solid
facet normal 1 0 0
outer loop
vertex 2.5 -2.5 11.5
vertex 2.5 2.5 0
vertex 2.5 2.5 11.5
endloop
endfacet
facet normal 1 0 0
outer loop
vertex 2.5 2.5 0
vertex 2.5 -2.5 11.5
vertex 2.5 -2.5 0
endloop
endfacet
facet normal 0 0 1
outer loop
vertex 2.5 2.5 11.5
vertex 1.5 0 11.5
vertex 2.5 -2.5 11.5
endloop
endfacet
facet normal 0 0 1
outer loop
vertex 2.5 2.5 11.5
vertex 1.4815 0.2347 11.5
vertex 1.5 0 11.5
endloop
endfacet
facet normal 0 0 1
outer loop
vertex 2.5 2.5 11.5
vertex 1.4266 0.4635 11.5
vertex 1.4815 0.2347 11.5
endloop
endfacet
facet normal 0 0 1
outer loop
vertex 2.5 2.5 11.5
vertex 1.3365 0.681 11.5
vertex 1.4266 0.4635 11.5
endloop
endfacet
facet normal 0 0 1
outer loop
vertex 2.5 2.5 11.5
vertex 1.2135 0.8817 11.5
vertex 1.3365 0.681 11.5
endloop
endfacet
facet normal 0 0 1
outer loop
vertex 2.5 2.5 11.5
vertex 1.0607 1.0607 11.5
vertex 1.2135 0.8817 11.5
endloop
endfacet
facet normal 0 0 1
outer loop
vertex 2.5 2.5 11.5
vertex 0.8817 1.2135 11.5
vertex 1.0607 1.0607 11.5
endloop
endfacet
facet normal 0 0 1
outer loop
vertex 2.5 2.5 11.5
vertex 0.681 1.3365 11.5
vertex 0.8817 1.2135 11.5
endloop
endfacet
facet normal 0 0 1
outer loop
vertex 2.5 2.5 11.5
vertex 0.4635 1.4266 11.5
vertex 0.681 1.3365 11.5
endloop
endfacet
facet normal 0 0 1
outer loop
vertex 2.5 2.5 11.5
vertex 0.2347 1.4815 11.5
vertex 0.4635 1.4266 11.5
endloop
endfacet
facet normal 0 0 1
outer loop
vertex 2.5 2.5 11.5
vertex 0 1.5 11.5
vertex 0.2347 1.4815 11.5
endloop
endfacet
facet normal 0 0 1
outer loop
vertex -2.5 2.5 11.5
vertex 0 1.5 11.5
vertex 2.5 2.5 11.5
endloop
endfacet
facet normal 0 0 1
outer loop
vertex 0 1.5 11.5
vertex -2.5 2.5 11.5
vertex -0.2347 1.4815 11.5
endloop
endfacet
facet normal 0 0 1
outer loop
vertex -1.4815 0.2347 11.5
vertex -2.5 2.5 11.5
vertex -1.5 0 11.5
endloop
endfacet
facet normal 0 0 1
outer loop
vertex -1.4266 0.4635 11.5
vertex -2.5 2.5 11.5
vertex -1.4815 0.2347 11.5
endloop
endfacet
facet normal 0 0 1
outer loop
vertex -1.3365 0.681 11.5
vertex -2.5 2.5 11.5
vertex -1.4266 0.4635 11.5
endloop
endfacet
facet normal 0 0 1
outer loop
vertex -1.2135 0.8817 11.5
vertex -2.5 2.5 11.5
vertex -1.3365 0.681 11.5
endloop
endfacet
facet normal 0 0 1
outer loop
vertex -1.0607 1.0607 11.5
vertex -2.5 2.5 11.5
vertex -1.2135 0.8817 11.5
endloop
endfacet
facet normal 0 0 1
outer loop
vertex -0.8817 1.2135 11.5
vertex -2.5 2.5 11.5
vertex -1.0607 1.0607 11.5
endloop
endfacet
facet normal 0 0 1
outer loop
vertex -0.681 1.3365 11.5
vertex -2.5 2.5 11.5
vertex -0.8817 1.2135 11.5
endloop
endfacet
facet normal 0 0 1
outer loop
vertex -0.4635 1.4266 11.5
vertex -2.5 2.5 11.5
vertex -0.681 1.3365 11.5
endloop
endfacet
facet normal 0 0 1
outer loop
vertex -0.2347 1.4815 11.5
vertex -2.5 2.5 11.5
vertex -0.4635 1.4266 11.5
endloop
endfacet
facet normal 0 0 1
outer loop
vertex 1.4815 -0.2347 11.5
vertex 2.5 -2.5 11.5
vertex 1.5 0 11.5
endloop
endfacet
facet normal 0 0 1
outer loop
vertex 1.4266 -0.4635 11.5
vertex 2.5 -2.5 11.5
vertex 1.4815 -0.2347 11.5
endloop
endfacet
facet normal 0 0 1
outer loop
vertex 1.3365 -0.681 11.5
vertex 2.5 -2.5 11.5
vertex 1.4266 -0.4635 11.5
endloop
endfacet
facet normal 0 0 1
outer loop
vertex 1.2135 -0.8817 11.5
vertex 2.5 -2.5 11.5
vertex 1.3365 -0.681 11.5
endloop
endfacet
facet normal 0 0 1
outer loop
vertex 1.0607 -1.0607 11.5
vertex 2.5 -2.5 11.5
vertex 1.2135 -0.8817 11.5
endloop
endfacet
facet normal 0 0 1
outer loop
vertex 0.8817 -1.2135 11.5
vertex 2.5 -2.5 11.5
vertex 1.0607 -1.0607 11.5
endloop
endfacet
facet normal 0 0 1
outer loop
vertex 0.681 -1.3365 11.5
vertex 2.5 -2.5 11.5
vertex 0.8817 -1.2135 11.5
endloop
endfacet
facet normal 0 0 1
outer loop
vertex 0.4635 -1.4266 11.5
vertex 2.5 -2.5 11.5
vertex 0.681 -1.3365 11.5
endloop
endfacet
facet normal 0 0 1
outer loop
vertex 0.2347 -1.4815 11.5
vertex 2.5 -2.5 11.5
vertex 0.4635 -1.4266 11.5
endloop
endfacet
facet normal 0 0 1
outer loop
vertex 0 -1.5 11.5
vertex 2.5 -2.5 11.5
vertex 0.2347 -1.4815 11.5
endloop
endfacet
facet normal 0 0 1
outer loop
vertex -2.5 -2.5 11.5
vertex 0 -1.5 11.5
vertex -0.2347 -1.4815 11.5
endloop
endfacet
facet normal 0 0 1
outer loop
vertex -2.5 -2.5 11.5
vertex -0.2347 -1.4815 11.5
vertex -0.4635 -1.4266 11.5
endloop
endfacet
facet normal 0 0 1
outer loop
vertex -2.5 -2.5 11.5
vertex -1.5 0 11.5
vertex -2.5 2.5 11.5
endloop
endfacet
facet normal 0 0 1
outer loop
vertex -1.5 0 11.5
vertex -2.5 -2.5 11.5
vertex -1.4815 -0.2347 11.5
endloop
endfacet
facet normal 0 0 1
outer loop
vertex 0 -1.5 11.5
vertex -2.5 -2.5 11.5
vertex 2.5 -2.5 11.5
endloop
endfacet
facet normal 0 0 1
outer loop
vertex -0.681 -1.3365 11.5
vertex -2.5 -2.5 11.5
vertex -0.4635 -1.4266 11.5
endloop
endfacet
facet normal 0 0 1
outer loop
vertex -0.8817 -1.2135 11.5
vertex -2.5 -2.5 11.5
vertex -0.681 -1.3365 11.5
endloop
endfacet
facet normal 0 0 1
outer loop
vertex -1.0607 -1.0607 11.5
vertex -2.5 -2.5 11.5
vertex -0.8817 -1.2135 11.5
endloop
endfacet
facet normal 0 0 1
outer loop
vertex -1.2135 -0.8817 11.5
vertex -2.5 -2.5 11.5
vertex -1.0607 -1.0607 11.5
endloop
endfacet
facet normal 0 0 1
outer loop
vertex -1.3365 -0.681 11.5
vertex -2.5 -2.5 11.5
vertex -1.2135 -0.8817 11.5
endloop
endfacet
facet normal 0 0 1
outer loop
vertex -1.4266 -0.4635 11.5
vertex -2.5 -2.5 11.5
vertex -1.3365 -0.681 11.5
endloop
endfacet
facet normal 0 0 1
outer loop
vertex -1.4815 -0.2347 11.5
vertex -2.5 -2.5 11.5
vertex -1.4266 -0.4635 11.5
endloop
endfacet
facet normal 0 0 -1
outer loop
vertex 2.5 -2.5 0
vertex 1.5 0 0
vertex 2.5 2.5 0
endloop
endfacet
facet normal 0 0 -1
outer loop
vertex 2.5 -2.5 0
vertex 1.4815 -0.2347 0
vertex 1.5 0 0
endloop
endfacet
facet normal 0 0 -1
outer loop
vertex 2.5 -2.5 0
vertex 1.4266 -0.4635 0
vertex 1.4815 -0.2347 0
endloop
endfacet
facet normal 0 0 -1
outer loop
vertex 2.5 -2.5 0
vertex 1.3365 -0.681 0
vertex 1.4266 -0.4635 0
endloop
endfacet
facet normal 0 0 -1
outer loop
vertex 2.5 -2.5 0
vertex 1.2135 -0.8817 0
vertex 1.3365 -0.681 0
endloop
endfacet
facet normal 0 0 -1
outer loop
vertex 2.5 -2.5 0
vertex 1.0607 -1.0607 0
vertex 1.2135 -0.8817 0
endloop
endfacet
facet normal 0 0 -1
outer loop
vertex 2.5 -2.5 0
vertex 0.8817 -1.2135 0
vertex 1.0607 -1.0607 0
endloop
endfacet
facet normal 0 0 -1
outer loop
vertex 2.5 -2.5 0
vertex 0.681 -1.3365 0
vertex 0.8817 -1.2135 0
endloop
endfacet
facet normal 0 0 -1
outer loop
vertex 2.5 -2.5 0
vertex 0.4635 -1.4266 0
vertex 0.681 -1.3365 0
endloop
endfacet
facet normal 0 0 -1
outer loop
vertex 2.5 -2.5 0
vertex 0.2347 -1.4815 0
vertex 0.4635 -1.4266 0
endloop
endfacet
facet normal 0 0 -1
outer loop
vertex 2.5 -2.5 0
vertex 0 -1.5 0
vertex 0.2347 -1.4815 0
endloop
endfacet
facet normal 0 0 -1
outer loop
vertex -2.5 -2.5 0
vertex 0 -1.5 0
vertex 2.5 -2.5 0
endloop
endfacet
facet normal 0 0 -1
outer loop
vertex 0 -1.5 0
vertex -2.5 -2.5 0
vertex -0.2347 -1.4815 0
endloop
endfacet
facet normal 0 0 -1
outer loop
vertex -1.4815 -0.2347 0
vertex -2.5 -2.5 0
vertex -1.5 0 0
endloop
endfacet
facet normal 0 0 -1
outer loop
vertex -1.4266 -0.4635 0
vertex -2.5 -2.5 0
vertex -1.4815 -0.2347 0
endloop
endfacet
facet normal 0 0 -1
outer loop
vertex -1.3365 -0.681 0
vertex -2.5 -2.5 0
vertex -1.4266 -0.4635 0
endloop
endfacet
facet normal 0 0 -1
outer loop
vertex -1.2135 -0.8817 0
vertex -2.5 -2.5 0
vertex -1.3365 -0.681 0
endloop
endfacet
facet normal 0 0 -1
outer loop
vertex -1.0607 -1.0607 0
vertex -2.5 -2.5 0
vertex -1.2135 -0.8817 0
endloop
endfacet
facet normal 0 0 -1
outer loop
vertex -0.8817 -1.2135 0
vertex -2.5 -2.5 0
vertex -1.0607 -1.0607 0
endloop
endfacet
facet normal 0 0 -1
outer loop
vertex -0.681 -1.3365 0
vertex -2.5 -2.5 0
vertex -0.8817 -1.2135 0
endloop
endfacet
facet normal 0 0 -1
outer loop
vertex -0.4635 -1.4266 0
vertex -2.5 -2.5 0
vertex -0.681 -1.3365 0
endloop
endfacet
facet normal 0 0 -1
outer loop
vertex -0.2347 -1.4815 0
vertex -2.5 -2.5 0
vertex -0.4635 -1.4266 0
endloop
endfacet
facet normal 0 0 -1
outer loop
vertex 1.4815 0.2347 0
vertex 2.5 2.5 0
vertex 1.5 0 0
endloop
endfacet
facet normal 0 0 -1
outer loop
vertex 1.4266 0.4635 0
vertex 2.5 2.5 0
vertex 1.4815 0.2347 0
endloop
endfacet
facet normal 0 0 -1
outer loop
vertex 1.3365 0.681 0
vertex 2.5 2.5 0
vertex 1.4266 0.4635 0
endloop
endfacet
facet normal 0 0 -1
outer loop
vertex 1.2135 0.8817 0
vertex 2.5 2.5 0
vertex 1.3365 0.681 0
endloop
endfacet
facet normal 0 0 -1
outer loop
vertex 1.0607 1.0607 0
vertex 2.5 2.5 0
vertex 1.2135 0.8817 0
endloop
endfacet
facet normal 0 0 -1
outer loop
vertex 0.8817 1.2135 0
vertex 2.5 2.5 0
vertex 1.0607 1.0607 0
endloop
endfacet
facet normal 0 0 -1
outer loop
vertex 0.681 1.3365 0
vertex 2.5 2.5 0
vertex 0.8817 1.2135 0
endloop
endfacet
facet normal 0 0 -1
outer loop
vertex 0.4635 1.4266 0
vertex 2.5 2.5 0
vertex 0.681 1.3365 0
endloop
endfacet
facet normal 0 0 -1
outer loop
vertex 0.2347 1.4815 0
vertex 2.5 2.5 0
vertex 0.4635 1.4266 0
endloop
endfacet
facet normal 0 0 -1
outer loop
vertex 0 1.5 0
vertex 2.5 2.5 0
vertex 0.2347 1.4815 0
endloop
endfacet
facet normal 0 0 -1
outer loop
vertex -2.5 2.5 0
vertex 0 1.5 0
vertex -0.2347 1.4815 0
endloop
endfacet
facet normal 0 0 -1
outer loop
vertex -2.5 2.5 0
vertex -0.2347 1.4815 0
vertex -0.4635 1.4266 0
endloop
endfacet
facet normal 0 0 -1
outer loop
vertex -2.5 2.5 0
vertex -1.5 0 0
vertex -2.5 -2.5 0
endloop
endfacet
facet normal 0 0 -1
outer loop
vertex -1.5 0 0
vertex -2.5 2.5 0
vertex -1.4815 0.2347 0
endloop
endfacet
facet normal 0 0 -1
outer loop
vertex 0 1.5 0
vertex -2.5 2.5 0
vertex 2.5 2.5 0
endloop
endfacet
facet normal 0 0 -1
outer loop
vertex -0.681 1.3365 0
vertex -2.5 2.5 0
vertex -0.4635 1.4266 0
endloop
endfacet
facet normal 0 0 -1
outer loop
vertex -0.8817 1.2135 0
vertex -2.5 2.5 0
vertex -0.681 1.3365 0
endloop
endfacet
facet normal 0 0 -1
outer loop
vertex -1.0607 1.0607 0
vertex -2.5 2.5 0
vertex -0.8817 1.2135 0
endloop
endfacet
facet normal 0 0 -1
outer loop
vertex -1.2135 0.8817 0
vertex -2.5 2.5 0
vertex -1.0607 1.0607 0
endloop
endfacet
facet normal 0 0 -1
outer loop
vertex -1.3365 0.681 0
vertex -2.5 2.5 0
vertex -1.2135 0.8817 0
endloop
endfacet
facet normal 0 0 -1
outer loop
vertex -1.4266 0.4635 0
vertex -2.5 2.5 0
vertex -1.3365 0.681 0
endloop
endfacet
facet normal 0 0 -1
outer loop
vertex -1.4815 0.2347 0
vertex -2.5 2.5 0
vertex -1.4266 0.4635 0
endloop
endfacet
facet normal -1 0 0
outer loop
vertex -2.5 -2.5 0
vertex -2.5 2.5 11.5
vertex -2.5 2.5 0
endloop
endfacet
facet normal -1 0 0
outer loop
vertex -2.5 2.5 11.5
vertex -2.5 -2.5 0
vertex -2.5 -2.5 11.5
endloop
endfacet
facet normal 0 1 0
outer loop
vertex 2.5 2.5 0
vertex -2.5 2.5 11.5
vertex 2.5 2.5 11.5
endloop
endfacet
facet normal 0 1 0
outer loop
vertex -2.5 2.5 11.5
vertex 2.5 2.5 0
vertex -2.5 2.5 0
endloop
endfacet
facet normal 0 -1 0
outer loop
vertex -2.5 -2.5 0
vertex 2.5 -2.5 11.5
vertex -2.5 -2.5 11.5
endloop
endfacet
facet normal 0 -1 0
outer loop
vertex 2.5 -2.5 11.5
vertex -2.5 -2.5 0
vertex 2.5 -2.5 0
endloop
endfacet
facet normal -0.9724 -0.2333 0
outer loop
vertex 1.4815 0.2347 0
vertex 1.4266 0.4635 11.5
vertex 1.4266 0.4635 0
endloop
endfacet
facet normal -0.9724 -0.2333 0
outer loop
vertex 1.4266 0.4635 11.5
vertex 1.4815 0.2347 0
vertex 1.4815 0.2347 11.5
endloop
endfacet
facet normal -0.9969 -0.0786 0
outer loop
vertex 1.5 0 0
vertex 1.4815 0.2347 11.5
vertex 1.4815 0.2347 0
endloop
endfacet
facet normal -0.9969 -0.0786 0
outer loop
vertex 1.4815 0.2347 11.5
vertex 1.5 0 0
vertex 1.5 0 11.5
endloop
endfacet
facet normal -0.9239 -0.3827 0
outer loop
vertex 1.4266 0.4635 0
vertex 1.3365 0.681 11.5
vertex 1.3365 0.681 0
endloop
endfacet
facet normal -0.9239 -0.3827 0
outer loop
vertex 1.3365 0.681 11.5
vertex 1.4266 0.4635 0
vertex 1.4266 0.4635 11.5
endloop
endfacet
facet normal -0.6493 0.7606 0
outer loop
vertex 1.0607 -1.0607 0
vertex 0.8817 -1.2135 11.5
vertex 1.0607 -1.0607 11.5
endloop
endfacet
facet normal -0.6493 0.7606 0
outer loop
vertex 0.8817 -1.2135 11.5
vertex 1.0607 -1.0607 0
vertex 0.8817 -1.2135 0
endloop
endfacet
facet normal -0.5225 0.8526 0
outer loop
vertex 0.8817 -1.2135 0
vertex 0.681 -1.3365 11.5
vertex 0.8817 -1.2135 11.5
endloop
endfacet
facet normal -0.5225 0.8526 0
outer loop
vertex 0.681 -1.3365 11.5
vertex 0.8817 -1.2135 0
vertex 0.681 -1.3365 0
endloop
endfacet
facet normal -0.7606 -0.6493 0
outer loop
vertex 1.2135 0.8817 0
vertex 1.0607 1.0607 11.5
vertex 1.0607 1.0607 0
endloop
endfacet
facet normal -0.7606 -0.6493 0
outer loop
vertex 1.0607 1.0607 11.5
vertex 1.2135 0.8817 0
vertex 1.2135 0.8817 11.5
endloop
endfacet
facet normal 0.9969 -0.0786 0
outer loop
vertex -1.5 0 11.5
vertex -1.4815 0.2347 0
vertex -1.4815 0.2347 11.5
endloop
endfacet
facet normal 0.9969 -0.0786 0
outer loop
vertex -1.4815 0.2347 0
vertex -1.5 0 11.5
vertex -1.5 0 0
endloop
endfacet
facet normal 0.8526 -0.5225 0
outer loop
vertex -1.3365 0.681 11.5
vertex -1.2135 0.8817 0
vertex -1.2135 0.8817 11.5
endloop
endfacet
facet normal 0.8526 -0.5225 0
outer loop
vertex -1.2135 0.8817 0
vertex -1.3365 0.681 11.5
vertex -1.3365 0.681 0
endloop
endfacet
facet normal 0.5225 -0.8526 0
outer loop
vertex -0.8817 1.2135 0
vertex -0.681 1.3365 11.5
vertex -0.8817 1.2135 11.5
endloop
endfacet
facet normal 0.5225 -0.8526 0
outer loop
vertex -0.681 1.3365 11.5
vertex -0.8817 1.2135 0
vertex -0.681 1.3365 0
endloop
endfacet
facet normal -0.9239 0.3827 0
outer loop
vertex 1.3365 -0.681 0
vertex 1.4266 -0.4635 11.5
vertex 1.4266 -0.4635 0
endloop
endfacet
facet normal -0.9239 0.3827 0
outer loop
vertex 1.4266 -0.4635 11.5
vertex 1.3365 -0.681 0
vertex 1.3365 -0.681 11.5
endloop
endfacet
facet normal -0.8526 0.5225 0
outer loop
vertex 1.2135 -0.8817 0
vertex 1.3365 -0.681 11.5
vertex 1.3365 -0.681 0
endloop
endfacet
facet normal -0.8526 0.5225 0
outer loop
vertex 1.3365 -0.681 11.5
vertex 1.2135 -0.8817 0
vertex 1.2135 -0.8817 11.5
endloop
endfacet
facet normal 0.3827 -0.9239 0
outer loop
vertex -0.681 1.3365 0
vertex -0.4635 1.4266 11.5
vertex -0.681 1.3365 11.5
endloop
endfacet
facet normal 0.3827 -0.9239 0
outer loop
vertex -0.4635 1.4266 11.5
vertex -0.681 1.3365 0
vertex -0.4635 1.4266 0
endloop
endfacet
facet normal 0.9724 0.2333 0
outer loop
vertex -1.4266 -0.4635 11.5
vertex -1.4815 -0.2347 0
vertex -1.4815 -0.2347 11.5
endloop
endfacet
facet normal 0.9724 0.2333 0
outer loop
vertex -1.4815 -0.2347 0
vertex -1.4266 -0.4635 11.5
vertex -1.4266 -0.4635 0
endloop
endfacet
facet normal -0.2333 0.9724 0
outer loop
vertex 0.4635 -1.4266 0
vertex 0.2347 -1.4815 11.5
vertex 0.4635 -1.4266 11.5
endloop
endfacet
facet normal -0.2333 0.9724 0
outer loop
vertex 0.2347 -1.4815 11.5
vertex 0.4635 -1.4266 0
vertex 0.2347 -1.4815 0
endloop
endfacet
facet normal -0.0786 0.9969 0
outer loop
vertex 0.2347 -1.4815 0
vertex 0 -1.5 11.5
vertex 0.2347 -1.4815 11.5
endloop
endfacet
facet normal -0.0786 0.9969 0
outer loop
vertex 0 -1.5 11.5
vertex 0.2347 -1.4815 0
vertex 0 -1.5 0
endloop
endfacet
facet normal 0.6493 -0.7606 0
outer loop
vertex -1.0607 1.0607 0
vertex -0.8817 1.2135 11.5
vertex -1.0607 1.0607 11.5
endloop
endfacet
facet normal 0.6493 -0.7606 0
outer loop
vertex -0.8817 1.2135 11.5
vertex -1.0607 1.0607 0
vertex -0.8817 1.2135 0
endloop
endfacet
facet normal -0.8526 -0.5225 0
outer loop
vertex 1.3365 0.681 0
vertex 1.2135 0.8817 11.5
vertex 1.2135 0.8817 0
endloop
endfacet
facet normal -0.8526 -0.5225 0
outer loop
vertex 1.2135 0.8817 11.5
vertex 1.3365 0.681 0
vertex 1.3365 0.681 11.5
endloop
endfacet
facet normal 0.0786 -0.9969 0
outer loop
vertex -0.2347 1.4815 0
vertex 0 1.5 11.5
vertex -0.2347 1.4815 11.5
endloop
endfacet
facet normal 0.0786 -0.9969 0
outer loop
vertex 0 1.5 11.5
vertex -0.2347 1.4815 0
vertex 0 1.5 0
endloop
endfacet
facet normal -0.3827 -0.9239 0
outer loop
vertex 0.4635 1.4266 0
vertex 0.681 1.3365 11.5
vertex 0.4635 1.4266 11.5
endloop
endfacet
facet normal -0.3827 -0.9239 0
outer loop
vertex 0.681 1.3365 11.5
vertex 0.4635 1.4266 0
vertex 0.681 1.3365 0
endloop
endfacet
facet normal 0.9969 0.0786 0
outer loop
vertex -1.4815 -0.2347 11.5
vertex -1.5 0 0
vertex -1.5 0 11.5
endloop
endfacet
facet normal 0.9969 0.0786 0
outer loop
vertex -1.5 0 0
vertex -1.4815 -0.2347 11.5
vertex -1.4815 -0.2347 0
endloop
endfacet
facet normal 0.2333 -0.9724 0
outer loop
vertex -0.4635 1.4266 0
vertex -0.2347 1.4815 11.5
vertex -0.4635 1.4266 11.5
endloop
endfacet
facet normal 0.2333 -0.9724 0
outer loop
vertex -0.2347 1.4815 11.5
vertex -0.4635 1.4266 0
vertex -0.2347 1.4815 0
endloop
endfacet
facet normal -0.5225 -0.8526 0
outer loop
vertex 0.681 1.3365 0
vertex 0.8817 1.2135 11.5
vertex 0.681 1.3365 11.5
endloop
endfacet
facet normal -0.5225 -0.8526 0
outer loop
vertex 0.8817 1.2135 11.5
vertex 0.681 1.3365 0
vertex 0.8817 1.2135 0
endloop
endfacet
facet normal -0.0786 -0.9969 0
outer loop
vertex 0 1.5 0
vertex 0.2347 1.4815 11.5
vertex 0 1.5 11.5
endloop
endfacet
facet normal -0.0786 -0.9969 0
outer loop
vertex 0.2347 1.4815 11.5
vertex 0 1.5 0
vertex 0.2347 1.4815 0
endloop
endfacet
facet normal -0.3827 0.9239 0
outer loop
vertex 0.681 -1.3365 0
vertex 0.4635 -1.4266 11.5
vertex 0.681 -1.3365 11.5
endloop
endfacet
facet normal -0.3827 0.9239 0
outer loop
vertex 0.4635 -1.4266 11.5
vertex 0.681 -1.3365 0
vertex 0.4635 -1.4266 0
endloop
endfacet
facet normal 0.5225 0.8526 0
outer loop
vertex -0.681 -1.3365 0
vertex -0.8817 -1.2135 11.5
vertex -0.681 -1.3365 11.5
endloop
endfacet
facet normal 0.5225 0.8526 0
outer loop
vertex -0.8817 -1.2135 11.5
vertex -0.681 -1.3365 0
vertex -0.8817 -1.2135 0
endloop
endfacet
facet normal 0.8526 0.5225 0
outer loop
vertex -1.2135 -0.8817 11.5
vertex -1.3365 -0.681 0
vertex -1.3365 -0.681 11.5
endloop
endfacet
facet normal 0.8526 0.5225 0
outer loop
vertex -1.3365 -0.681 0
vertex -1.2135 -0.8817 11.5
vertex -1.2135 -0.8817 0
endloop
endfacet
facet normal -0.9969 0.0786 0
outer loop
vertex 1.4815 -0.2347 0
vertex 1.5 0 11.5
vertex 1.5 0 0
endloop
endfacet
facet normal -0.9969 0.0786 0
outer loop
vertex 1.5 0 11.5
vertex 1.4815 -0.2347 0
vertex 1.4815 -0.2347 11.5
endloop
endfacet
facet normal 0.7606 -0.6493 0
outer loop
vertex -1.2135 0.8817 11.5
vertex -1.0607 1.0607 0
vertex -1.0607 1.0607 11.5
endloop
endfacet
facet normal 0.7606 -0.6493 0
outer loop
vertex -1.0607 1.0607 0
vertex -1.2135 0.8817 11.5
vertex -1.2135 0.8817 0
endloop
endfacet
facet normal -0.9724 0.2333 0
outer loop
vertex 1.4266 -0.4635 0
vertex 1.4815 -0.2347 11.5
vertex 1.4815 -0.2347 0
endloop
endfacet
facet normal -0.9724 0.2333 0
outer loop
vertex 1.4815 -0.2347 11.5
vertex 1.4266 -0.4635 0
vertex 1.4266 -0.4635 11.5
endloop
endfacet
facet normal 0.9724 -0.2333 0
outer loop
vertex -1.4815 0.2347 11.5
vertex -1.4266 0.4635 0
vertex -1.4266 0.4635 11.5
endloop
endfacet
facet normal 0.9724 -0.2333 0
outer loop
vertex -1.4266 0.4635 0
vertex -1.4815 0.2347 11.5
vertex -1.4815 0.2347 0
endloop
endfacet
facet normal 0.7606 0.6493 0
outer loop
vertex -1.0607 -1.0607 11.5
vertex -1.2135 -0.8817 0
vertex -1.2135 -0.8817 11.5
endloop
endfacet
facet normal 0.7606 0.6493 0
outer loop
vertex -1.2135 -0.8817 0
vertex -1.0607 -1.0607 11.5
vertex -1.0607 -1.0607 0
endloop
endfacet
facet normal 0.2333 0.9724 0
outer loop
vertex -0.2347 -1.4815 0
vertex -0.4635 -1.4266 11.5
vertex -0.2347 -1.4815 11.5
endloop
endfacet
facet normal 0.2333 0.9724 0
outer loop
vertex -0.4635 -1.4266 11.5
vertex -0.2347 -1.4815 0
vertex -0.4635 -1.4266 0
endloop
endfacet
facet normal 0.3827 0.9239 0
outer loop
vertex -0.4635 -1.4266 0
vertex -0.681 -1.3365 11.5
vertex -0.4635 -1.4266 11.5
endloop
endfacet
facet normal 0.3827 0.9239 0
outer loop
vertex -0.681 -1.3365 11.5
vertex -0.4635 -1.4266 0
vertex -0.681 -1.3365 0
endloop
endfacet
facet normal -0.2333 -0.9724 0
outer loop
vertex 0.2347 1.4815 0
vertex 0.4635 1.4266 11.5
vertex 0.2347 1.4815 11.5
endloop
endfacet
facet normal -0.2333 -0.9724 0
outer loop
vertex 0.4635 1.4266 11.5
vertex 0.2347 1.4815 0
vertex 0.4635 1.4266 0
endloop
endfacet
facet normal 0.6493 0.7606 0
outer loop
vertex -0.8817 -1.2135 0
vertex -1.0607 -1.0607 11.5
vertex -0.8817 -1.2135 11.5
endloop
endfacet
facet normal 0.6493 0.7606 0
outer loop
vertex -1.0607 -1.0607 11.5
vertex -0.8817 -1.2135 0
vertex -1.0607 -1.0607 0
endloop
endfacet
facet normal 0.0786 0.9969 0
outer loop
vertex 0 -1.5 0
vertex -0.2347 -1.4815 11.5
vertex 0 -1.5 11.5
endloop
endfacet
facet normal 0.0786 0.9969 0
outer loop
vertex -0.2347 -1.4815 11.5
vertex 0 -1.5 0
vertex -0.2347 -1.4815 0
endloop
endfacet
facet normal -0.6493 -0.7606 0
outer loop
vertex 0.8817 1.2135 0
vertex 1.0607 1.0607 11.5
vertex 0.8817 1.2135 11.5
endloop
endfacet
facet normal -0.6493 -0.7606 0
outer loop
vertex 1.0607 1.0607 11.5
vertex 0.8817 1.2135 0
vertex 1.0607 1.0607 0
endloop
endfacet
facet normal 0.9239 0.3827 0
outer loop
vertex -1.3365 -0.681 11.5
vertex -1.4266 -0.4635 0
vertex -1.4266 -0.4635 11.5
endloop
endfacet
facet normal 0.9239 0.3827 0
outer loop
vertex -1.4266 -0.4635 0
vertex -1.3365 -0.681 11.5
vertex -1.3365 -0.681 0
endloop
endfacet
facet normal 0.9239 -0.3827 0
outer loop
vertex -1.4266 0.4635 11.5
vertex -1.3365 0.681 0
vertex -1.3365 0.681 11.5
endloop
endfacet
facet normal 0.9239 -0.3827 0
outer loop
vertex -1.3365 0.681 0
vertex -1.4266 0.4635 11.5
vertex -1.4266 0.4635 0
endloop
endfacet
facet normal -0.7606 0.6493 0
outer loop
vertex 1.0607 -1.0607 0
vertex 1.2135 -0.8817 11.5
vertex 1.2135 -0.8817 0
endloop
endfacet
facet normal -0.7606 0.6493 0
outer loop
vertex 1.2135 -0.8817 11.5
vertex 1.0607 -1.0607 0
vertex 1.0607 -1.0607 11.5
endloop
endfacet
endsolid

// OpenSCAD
// Copyright (c) 2026 Chris Lee and contributors.
// Licensed under the MIT license. See LICENSE file in the project root for details.

// Spacers for supporting the OLED board cantilevered via a header from a parent board.

// These are square so you can keep them from turning when screwing an M3 screw into them
//  through the PCB from the back.

module spacer(d, l, w=1) {
  r = d / 2;
  difference()  {
    $fn=40;
    out_d = 2*(r+w);
    translate(-out_d/2*[1,1,0]) cube([out_d, out_d, l]);
    translate([0, 0, -1]) cylinder(l+2, r, r);
  }
}

nrows = 1;
ncols = 1;

for (r = [0:nrows-1]) {
  for (c = [0:ncols-1]) {
    translate(6*[r,c,0]) spacer(3, 11.5);
  }
 }
